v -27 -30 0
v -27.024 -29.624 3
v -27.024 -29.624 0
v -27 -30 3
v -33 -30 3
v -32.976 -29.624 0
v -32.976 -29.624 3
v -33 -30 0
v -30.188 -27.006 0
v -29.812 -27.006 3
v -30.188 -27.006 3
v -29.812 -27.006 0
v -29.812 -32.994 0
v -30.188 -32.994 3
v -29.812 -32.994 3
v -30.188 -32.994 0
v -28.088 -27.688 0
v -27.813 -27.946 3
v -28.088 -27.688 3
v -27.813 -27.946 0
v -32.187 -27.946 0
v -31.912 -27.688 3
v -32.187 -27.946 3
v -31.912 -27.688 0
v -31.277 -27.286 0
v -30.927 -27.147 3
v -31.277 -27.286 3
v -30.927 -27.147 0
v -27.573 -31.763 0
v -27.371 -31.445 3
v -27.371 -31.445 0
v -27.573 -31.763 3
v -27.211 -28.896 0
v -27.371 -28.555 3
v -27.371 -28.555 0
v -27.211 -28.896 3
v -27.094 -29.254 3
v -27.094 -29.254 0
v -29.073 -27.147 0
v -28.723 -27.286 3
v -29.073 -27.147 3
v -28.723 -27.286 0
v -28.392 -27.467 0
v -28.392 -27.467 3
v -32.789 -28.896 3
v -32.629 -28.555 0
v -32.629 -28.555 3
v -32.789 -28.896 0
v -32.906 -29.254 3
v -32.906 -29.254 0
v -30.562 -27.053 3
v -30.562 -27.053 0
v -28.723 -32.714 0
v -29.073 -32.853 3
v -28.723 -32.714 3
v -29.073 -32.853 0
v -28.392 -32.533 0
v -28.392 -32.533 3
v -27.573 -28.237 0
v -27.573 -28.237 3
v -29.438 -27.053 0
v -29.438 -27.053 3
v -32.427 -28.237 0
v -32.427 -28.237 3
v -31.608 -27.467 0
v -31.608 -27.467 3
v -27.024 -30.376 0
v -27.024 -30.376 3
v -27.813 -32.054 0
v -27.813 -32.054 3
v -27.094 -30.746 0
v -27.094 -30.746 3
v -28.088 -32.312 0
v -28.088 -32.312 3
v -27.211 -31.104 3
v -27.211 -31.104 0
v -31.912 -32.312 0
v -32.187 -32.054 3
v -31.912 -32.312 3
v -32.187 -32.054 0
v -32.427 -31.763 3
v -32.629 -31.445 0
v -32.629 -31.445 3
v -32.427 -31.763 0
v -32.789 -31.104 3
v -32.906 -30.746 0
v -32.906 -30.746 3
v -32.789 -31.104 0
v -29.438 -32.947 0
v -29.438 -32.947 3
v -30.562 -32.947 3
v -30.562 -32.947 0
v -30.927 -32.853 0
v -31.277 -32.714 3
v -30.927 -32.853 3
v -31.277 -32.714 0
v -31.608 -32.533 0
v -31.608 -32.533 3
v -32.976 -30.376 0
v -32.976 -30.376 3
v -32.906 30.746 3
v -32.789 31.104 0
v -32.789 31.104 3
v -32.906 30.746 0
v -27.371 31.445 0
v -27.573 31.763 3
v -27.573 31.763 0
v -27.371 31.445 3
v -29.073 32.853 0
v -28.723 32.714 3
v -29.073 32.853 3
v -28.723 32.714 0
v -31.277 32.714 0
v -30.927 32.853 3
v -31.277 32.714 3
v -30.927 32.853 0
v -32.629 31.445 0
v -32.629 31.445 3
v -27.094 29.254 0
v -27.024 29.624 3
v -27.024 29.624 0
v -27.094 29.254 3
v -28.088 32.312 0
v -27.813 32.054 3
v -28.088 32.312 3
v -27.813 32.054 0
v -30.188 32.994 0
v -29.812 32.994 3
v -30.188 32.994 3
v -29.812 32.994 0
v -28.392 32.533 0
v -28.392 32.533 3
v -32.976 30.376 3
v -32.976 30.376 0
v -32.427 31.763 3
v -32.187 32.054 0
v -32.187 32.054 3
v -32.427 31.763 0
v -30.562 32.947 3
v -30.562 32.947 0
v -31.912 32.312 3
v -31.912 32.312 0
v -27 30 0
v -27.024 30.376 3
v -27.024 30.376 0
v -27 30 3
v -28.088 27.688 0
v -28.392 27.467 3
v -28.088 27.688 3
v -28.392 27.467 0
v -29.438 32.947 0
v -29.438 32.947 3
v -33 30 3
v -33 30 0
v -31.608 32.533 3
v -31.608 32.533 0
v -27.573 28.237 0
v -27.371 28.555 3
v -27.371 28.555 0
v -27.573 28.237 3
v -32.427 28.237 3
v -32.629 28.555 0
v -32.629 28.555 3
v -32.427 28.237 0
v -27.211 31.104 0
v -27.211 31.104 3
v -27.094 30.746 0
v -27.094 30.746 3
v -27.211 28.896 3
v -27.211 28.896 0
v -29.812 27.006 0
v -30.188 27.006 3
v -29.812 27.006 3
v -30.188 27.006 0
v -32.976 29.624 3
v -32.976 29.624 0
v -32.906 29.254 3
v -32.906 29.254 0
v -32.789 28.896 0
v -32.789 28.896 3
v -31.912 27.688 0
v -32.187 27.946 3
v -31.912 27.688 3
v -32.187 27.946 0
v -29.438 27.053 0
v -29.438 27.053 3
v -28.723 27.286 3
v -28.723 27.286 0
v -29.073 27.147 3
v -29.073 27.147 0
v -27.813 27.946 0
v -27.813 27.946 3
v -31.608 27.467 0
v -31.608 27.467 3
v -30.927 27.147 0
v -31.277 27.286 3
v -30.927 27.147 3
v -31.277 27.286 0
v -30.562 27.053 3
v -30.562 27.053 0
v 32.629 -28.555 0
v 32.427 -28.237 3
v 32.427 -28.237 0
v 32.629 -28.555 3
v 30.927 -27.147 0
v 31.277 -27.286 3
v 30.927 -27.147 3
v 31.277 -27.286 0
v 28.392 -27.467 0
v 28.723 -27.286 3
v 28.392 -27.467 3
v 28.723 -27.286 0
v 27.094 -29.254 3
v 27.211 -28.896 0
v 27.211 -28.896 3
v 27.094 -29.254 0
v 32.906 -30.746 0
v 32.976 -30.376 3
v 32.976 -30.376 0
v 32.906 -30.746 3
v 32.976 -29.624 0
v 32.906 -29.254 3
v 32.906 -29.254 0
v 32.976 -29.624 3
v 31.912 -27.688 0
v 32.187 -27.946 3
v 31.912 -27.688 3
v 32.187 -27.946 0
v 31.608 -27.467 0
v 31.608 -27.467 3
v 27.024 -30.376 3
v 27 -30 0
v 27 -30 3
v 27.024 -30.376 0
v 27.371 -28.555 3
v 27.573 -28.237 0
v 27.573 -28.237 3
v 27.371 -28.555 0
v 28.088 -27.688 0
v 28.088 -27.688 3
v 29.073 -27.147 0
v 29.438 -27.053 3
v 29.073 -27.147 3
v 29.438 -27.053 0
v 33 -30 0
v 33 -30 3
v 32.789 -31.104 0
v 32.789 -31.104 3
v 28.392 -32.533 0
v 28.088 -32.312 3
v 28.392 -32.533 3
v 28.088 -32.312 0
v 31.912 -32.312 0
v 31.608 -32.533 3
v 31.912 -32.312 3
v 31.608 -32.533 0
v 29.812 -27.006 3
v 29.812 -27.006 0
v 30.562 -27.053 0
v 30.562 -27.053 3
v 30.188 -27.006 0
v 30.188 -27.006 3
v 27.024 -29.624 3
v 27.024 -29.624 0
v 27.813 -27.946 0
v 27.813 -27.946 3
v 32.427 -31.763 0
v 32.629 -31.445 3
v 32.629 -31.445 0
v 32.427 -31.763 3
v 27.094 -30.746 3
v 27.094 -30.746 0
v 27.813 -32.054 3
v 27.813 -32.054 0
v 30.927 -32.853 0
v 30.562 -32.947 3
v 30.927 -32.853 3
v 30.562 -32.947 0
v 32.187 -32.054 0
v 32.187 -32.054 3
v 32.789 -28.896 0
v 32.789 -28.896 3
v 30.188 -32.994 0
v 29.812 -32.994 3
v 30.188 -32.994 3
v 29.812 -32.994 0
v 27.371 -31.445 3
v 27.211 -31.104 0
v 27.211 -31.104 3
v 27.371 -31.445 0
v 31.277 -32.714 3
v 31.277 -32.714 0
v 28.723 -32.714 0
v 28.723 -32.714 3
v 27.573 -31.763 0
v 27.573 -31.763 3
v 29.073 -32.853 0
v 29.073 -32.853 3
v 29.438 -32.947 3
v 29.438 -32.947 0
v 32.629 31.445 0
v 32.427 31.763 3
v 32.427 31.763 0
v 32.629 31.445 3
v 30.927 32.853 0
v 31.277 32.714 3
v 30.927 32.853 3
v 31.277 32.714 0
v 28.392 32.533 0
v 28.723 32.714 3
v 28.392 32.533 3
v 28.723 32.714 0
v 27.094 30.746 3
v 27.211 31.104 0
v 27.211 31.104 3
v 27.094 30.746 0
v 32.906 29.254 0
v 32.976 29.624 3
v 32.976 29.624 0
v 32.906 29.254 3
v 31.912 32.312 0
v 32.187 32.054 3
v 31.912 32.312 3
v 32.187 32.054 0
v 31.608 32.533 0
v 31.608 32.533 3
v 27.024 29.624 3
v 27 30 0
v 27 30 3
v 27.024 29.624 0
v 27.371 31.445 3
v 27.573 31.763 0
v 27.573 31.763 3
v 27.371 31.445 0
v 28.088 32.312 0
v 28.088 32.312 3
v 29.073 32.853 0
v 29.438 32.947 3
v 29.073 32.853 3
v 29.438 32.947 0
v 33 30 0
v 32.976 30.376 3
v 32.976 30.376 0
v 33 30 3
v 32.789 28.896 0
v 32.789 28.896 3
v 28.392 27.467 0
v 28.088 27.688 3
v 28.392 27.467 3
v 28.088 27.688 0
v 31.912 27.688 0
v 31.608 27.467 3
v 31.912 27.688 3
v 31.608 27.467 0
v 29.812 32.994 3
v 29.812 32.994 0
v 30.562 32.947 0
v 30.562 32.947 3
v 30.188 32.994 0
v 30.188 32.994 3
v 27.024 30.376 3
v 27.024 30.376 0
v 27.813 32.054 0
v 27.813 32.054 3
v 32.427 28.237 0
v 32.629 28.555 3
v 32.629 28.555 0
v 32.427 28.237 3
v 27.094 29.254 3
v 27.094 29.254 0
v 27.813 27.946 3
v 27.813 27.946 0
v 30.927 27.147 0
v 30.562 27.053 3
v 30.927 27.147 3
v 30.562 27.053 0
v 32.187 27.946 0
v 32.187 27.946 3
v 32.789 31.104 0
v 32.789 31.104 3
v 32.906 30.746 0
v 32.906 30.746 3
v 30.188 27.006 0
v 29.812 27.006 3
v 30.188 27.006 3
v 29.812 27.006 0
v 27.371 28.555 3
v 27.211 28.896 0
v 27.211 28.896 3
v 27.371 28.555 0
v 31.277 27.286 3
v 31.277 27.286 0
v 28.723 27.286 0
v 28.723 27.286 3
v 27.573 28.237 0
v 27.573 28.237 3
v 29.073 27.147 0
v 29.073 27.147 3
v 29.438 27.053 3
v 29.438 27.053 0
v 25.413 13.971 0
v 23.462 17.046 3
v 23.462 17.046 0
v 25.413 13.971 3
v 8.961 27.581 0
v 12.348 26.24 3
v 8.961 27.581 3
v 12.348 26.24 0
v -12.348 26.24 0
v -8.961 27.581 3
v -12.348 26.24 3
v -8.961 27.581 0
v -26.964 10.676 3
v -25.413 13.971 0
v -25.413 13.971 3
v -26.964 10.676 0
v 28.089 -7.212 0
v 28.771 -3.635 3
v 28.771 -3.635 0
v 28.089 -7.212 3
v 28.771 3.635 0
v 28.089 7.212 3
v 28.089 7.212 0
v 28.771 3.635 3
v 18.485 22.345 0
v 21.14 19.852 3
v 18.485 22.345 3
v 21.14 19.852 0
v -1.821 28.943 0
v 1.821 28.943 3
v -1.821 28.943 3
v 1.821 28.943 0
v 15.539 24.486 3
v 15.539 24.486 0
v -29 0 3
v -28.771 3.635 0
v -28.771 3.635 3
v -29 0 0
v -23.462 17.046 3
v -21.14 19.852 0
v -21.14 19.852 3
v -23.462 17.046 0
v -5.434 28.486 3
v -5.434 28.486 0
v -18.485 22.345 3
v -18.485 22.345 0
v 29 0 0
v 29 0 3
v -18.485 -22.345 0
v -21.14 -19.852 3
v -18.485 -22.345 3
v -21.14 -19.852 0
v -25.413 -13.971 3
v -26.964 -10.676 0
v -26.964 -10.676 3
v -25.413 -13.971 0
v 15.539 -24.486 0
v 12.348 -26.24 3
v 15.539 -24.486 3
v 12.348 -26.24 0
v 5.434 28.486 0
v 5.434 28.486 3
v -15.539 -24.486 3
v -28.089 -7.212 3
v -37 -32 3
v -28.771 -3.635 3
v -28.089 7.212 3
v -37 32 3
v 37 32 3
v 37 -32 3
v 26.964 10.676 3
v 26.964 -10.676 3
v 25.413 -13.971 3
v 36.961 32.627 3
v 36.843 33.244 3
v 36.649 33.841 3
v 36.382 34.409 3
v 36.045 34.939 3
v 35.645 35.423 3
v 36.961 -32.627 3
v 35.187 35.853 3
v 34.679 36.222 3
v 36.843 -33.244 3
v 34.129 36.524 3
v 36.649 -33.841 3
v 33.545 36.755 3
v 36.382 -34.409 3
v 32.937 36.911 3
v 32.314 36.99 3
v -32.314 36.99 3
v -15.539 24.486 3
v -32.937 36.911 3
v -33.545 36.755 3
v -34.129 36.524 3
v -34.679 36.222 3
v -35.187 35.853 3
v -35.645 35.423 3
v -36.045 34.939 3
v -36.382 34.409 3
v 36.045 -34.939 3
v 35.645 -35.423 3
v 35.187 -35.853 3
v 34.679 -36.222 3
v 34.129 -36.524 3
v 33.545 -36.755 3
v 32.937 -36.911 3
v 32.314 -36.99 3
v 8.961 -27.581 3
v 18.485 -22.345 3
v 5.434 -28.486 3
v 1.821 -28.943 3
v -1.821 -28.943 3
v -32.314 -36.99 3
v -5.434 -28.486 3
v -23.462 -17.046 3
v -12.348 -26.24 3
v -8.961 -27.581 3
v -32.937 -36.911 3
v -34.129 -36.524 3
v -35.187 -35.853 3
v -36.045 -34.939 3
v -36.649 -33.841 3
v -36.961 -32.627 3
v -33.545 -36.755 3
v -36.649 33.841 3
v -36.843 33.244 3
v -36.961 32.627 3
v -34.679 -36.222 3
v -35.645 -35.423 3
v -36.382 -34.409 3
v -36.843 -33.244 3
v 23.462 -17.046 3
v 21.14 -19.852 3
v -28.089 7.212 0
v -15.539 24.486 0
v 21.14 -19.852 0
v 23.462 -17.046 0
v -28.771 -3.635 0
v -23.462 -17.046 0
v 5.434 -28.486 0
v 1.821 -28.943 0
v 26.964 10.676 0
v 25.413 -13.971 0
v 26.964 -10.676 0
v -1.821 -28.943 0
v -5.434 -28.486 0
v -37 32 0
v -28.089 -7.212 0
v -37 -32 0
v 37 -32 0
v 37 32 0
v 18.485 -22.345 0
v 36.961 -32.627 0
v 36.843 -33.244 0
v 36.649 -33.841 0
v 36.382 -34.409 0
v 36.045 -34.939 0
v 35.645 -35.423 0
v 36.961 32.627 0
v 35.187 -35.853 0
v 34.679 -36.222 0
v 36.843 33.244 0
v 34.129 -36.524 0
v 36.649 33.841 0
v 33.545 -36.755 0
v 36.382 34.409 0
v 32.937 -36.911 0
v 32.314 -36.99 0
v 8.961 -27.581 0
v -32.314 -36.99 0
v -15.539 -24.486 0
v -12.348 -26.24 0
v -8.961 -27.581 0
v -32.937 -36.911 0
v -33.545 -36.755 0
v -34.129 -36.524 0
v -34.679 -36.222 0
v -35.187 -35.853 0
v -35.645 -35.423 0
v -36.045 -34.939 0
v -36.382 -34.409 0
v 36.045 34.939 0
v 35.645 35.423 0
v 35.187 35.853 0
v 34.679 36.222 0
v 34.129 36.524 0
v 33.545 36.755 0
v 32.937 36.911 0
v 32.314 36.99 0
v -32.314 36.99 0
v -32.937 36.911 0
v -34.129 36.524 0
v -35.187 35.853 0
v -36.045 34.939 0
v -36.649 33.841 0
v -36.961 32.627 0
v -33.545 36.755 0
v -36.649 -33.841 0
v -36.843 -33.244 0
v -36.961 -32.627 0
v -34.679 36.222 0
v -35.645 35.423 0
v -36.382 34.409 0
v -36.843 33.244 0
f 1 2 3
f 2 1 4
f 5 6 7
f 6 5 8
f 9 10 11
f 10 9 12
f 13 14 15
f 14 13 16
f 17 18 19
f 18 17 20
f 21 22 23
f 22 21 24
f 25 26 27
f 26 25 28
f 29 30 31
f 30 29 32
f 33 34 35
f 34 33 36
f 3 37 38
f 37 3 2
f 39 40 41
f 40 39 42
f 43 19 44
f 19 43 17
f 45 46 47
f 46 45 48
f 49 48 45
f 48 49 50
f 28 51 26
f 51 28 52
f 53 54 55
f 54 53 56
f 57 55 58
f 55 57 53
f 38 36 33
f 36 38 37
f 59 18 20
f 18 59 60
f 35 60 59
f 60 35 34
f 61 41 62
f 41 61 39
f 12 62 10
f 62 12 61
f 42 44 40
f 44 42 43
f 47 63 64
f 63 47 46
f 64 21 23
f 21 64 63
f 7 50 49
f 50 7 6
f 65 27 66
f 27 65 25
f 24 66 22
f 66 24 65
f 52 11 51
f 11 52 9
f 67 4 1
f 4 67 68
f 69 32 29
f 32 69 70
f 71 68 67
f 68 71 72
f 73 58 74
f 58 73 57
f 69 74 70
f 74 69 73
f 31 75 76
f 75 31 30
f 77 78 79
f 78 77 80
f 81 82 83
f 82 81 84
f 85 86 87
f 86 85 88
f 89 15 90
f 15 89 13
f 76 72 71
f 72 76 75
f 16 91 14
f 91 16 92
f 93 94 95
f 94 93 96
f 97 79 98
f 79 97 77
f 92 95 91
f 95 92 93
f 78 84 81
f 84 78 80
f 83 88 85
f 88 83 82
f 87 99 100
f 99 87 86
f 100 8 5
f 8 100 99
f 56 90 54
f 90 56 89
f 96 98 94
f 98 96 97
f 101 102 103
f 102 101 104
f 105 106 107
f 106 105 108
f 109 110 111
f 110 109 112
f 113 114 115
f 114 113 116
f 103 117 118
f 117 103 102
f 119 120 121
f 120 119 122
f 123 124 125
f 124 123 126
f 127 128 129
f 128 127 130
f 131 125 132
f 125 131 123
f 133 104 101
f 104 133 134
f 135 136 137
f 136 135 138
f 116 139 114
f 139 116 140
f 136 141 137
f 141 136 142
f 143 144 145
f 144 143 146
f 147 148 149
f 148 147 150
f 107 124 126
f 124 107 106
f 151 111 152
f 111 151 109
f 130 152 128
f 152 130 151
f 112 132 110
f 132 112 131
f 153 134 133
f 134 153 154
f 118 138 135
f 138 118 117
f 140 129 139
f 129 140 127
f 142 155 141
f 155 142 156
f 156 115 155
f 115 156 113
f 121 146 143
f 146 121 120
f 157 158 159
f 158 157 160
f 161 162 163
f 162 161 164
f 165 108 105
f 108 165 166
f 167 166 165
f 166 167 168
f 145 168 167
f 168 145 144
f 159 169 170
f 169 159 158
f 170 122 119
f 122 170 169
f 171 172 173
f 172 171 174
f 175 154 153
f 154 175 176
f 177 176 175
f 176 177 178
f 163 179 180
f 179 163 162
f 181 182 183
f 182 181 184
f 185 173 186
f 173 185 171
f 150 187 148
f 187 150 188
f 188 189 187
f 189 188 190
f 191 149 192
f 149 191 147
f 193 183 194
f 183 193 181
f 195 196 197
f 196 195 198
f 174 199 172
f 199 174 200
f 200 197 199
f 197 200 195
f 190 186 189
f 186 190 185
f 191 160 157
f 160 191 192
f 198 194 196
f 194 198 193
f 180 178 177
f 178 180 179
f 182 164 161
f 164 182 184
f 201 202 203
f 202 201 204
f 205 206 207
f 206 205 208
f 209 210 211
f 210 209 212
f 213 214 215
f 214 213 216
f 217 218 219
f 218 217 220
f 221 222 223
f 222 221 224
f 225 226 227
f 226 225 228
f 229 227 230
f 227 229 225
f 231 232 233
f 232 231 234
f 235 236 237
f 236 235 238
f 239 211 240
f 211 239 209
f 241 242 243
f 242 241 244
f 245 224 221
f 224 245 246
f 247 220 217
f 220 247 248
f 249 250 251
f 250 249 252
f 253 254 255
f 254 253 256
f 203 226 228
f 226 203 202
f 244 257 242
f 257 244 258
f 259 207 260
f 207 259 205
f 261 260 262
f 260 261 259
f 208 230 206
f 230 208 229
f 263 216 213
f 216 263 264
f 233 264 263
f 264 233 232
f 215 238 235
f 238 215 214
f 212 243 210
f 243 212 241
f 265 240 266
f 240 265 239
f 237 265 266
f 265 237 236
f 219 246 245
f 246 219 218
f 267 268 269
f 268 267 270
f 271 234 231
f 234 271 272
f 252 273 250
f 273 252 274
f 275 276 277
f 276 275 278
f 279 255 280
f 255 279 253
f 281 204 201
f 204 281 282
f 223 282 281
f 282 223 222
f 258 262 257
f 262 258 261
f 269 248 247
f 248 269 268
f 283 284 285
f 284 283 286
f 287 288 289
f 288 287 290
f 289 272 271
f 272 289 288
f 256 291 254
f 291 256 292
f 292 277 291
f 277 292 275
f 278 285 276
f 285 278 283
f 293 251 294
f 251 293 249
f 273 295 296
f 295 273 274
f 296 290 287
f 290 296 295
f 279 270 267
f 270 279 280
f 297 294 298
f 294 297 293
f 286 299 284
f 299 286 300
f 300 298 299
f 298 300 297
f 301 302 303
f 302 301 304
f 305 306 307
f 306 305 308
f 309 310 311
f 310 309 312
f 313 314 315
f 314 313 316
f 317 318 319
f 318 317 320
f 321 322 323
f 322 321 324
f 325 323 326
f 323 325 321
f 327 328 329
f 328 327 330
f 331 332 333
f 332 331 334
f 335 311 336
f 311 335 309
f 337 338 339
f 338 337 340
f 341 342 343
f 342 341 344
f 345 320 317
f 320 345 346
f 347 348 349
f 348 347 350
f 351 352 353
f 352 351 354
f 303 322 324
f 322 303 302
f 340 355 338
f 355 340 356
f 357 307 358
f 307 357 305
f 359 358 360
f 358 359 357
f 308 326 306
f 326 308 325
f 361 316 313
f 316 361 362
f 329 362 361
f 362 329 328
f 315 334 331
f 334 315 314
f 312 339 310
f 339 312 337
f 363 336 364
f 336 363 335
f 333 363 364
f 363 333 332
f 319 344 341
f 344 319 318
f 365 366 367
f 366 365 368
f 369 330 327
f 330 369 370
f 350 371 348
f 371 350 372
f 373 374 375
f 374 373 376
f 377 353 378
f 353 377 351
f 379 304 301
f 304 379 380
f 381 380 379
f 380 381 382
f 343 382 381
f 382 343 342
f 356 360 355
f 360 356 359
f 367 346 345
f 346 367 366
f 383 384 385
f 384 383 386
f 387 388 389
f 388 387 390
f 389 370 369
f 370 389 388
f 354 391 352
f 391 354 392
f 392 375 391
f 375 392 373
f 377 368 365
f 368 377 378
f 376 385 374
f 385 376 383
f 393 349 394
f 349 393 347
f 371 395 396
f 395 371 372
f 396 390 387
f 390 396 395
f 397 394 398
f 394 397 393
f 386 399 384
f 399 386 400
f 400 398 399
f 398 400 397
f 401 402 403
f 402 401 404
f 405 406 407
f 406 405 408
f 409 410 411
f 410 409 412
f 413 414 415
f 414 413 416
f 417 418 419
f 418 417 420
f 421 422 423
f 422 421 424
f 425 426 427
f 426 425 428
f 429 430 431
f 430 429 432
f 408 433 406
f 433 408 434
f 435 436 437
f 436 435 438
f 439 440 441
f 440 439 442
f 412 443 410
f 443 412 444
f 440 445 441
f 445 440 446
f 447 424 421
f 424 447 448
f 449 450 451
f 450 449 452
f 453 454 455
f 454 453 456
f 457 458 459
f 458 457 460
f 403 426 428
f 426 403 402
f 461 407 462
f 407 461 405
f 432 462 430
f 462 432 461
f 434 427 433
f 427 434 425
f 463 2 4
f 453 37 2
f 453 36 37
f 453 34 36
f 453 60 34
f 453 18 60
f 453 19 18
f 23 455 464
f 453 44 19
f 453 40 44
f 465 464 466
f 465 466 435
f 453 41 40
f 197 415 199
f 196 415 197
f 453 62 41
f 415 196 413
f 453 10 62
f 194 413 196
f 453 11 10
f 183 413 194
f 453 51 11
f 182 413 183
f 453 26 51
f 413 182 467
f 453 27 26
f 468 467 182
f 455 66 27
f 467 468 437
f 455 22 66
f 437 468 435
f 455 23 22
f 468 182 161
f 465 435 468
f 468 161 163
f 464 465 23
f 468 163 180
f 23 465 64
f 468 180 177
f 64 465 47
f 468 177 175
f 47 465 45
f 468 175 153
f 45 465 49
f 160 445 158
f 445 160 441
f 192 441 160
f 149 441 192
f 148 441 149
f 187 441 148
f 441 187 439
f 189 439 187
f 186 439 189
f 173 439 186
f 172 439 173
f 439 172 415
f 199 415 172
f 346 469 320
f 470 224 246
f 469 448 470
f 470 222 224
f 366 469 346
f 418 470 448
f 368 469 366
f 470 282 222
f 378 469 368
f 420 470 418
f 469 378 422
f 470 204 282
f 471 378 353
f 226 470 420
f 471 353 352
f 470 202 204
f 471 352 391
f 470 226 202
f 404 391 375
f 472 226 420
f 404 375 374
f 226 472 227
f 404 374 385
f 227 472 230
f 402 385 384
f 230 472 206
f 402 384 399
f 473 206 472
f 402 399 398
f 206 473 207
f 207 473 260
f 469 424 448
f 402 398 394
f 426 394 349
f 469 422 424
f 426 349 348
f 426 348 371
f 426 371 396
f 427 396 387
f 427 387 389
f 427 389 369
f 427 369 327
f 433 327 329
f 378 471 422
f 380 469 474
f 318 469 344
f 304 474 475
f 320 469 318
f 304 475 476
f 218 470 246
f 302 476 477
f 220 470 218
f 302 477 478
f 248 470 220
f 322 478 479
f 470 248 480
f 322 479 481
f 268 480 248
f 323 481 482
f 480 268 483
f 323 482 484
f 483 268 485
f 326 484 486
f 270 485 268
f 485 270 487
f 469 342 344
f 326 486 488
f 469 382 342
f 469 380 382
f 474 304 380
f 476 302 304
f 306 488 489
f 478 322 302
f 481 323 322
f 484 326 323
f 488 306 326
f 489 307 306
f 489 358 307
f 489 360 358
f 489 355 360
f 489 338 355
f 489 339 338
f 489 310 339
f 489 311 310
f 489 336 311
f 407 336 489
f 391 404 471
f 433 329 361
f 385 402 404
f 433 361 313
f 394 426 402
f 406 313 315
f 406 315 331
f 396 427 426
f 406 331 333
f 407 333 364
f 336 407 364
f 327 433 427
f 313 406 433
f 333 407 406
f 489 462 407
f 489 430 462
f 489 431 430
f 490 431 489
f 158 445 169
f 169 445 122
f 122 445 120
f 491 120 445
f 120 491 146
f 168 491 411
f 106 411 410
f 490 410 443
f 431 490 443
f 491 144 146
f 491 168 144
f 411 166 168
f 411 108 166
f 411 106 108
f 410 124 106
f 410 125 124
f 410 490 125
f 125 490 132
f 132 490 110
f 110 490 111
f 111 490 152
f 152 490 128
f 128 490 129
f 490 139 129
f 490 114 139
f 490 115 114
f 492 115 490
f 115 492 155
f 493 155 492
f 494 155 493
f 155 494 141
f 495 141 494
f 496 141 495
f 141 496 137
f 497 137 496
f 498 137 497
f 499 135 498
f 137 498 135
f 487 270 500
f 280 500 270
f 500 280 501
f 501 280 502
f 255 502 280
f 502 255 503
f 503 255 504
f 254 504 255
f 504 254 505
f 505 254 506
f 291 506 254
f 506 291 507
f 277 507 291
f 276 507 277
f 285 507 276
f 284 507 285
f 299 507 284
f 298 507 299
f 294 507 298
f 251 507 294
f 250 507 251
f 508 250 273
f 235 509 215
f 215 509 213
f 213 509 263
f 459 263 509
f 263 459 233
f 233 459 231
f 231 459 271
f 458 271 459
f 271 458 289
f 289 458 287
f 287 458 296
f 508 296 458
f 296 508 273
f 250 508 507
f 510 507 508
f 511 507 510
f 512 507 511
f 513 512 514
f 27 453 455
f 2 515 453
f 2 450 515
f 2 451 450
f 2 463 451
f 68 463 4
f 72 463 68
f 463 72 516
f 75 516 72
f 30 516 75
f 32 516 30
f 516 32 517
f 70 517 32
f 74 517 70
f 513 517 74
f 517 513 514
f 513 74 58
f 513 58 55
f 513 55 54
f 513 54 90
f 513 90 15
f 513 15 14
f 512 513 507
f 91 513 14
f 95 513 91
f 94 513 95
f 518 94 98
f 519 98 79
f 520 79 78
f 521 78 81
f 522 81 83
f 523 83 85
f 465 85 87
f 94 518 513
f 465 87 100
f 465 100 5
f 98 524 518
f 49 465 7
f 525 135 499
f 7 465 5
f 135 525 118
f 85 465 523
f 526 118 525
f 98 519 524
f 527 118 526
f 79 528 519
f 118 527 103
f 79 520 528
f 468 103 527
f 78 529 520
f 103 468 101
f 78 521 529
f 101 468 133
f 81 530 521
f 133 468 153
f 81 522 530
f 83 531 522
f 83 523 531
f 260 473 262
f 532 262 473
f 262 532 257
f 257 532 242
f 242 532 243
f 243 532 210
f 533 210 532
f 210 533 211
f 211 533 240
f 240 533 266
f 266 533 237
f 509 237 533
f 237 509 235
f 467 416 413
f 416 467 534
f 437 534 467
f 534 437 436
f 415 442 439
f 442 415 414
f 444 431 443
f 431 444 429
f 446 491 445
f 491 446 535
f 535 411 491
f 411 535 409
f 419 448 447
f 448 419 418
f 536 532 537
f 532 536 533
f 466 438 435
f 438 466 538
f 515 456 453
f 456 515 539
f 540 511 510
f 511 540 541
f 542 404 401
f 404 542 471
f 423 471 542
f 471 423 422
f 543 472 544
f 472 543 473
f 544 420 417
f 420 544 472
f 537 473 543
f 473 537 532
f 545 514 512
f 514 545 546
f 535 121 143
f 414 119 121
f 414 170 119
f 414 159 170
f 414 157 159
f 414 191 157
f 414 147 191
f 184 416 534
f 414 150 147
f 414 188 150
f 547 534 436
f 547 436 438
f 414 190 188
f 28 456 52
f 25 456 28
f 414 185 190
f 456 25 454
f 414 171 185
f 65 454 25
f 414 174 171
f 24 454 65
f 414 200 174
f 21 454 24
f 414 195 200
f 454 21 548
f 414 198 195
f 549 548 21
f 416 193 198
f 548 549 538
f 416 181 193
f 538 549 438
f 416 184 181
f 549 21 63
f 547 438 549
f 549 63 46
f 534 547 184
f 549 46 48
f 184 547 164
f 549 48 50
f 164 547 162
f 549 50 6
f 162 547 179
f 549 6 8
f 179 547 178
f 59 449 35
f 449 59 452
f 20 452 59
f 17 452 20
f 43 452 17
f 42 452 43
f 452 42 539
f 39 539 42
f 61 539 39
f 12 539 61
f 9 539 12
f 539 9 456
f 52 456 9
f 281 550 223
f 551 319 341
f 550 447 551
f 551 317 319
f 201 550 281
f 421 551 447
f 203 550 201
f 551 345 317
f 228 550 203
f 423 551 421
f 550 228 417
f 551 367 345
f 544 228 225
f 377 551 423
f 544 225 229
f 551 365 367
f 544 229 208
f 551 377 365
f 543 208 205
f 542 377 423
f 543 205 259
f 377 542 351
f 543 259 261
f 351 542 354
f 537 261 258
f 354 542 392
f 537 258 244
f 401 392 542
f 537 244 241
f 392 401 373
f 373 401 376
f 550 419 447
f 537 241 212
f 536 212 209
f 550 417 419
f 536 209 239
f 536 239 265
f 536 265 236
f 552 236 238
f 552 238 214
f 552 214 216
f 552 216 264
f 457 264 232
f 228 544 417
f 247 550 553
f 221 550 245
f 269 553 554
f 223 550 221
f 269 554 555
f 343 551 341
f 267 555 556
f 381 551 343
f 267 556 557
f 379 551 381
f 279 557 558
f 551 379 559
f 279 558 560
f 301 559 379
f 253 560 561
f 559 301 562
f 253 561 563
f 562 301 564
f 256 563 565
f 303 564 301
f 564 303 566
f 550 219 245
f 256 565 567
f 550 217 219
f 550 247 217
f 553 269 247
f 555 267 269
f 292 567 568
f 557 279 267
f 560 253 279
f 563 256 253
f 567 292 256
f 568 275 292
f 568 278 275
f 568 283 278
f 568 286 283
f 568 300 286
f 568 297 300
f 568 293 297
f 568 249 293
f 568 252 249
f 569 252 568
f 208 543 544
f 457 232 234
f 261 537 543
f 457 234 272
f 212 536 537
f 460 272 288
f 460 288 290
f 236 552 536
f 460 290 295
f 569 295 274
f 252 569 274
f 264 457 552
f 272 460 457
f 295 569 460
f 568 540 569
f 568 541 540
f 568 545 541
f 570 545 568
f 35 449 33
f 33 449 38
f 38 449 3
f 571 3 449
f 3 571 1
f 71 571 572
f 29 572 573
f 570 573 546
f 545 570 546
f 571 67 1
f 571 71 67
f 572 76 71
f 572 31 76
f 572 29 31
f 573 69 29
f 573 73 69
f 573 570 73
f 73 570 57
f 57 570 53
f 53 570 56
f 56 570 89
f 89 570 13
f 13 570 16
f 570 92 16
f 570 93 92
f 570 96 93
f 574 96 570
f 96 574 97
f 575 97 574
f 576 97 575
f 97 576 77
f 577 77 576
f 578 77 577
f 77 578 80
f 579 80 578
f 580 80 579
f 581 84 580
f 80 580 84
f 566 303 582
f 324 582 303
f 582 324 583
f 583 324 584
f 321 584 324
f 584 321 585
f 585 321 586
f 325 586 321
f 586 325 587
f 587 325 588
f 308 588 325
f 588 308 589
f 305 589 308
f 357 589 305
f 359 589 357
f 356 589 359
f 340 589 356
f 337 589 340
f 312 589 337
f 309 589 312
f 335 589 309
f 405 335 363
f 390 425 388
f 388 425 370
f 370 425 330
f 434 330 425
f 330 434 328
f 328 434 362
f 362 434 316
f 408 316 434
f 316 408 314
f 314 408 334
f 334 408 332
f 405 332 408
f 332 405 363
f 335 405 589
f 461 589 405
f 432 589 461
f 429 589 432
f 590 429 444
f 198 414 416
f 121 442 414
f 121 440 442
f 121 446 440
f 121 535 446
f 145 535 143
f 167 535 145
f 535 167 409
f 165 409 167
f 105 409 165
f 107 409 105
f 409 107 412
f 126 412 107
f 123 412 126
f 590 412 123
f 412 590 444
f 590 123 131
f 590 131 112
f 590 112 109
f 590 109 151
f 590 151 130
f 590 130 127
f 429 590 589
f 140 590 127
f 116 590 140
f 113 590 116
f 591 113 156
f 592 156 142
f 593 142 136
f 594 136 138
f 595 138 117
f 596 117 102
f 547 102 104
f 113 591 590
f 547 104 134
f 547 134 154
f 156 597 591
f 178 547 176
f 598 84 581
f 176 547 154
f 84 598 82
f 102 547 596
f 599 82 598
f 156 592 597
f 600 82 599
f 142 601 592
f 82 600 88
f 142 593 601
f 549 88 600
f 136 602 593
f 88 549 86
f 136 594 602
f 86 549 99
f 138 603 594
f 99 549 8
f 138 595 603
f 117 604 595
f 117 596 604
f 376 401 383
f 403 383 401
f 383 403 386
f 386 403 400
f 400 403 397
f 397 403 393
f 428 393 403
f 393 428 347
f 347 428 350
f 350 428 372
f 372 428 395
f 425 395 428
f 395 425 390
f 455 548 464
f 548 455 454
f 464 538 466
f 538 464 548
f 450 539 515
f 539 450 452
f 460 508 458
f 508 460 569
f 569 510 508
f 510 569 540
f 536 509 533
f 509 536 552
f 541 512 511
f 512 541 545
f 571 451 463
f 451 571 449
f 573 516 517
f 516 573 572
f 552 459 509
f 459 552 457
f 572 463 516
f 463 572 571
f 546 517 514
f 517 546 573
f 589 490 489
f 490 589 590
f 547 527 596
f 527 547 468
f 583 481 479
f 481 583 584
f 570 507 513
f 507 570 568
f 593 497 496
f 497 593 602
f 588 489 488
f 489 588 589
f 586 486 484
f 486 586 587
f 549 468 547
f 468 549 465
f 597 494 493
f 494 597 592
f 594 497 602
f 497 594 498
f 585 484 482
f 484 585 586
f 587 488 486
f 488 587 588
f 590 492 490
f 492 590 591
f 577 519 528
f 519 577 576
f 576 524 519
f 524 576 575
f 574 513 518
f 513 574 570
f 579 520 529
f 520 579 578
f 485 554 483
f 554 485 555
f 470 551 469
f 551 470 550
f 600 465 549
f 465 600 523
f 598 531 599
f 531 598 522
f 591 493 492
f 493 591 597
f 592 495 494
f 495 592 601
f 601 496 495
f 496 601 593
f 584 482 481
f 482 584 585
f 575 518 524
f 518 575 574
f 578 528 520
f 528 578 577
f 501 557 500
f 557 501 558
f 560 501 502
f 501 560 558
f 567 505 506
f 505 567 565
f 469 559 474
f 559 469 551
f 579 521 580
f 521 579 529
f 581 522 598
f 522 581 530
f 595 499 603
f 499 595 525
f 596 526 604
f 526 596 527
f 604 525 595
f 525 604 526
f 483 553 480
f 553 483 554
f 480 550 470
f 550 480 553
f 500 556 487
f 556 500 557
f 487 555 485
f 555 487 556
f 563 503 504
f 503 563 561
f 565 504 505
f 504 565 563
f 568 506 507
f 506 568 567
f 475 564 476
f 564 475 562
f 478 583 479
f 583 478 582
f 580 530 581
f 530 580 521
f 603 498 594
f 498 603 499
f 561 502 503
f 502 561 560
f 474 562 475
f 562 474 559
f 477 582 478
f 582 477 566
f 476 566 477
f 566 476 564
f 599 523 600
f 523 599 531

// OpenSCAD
$fn = 50;


difference() {
	union() {
		hull() {
			translate(v = [-32.0000000000, 32.0000000000, 0]) {
				cylinder(h = 3, r = 5);
			}
			translate(v = [32.0000000000, 32.0000000000, 0]) {
				cylinder(h = 3, r = 5);
			}
			translate(v = [-32.0000000000, -32.0000000000, 0]) {
				cylinder(h = 3, r = 5);
			}
			translate(v = [32.0000000000, -32.0000000000, 0]) {
				cylinder(h = 3, r = 5);
			}
		}
	}
	union() {
		#translate(v = [-30.0000000000, -30.0000000000, -100.0000000000]) {
			cylinder(h = 200, r = 3.0000000000);
		}
		#translate(v = [-30.0000000000, 30.0000000000, -100.0000000000]) {
			cylinder(h = 200, r = 3.0000000000);
		}
		#translate(v = [30.0000000000, -30.0000000000, -100.0000000000]) {
			cylinder(h = 200, r = 3.0000000000);
		}
		#translate(v = [30.0000000000, 30.0000000000, -100.0000000000]) {
			cylinder(h = 200, r = 3.0000000000);
		}
		#cylinder(h = 3, r = 29.0000000000);
	}
}
